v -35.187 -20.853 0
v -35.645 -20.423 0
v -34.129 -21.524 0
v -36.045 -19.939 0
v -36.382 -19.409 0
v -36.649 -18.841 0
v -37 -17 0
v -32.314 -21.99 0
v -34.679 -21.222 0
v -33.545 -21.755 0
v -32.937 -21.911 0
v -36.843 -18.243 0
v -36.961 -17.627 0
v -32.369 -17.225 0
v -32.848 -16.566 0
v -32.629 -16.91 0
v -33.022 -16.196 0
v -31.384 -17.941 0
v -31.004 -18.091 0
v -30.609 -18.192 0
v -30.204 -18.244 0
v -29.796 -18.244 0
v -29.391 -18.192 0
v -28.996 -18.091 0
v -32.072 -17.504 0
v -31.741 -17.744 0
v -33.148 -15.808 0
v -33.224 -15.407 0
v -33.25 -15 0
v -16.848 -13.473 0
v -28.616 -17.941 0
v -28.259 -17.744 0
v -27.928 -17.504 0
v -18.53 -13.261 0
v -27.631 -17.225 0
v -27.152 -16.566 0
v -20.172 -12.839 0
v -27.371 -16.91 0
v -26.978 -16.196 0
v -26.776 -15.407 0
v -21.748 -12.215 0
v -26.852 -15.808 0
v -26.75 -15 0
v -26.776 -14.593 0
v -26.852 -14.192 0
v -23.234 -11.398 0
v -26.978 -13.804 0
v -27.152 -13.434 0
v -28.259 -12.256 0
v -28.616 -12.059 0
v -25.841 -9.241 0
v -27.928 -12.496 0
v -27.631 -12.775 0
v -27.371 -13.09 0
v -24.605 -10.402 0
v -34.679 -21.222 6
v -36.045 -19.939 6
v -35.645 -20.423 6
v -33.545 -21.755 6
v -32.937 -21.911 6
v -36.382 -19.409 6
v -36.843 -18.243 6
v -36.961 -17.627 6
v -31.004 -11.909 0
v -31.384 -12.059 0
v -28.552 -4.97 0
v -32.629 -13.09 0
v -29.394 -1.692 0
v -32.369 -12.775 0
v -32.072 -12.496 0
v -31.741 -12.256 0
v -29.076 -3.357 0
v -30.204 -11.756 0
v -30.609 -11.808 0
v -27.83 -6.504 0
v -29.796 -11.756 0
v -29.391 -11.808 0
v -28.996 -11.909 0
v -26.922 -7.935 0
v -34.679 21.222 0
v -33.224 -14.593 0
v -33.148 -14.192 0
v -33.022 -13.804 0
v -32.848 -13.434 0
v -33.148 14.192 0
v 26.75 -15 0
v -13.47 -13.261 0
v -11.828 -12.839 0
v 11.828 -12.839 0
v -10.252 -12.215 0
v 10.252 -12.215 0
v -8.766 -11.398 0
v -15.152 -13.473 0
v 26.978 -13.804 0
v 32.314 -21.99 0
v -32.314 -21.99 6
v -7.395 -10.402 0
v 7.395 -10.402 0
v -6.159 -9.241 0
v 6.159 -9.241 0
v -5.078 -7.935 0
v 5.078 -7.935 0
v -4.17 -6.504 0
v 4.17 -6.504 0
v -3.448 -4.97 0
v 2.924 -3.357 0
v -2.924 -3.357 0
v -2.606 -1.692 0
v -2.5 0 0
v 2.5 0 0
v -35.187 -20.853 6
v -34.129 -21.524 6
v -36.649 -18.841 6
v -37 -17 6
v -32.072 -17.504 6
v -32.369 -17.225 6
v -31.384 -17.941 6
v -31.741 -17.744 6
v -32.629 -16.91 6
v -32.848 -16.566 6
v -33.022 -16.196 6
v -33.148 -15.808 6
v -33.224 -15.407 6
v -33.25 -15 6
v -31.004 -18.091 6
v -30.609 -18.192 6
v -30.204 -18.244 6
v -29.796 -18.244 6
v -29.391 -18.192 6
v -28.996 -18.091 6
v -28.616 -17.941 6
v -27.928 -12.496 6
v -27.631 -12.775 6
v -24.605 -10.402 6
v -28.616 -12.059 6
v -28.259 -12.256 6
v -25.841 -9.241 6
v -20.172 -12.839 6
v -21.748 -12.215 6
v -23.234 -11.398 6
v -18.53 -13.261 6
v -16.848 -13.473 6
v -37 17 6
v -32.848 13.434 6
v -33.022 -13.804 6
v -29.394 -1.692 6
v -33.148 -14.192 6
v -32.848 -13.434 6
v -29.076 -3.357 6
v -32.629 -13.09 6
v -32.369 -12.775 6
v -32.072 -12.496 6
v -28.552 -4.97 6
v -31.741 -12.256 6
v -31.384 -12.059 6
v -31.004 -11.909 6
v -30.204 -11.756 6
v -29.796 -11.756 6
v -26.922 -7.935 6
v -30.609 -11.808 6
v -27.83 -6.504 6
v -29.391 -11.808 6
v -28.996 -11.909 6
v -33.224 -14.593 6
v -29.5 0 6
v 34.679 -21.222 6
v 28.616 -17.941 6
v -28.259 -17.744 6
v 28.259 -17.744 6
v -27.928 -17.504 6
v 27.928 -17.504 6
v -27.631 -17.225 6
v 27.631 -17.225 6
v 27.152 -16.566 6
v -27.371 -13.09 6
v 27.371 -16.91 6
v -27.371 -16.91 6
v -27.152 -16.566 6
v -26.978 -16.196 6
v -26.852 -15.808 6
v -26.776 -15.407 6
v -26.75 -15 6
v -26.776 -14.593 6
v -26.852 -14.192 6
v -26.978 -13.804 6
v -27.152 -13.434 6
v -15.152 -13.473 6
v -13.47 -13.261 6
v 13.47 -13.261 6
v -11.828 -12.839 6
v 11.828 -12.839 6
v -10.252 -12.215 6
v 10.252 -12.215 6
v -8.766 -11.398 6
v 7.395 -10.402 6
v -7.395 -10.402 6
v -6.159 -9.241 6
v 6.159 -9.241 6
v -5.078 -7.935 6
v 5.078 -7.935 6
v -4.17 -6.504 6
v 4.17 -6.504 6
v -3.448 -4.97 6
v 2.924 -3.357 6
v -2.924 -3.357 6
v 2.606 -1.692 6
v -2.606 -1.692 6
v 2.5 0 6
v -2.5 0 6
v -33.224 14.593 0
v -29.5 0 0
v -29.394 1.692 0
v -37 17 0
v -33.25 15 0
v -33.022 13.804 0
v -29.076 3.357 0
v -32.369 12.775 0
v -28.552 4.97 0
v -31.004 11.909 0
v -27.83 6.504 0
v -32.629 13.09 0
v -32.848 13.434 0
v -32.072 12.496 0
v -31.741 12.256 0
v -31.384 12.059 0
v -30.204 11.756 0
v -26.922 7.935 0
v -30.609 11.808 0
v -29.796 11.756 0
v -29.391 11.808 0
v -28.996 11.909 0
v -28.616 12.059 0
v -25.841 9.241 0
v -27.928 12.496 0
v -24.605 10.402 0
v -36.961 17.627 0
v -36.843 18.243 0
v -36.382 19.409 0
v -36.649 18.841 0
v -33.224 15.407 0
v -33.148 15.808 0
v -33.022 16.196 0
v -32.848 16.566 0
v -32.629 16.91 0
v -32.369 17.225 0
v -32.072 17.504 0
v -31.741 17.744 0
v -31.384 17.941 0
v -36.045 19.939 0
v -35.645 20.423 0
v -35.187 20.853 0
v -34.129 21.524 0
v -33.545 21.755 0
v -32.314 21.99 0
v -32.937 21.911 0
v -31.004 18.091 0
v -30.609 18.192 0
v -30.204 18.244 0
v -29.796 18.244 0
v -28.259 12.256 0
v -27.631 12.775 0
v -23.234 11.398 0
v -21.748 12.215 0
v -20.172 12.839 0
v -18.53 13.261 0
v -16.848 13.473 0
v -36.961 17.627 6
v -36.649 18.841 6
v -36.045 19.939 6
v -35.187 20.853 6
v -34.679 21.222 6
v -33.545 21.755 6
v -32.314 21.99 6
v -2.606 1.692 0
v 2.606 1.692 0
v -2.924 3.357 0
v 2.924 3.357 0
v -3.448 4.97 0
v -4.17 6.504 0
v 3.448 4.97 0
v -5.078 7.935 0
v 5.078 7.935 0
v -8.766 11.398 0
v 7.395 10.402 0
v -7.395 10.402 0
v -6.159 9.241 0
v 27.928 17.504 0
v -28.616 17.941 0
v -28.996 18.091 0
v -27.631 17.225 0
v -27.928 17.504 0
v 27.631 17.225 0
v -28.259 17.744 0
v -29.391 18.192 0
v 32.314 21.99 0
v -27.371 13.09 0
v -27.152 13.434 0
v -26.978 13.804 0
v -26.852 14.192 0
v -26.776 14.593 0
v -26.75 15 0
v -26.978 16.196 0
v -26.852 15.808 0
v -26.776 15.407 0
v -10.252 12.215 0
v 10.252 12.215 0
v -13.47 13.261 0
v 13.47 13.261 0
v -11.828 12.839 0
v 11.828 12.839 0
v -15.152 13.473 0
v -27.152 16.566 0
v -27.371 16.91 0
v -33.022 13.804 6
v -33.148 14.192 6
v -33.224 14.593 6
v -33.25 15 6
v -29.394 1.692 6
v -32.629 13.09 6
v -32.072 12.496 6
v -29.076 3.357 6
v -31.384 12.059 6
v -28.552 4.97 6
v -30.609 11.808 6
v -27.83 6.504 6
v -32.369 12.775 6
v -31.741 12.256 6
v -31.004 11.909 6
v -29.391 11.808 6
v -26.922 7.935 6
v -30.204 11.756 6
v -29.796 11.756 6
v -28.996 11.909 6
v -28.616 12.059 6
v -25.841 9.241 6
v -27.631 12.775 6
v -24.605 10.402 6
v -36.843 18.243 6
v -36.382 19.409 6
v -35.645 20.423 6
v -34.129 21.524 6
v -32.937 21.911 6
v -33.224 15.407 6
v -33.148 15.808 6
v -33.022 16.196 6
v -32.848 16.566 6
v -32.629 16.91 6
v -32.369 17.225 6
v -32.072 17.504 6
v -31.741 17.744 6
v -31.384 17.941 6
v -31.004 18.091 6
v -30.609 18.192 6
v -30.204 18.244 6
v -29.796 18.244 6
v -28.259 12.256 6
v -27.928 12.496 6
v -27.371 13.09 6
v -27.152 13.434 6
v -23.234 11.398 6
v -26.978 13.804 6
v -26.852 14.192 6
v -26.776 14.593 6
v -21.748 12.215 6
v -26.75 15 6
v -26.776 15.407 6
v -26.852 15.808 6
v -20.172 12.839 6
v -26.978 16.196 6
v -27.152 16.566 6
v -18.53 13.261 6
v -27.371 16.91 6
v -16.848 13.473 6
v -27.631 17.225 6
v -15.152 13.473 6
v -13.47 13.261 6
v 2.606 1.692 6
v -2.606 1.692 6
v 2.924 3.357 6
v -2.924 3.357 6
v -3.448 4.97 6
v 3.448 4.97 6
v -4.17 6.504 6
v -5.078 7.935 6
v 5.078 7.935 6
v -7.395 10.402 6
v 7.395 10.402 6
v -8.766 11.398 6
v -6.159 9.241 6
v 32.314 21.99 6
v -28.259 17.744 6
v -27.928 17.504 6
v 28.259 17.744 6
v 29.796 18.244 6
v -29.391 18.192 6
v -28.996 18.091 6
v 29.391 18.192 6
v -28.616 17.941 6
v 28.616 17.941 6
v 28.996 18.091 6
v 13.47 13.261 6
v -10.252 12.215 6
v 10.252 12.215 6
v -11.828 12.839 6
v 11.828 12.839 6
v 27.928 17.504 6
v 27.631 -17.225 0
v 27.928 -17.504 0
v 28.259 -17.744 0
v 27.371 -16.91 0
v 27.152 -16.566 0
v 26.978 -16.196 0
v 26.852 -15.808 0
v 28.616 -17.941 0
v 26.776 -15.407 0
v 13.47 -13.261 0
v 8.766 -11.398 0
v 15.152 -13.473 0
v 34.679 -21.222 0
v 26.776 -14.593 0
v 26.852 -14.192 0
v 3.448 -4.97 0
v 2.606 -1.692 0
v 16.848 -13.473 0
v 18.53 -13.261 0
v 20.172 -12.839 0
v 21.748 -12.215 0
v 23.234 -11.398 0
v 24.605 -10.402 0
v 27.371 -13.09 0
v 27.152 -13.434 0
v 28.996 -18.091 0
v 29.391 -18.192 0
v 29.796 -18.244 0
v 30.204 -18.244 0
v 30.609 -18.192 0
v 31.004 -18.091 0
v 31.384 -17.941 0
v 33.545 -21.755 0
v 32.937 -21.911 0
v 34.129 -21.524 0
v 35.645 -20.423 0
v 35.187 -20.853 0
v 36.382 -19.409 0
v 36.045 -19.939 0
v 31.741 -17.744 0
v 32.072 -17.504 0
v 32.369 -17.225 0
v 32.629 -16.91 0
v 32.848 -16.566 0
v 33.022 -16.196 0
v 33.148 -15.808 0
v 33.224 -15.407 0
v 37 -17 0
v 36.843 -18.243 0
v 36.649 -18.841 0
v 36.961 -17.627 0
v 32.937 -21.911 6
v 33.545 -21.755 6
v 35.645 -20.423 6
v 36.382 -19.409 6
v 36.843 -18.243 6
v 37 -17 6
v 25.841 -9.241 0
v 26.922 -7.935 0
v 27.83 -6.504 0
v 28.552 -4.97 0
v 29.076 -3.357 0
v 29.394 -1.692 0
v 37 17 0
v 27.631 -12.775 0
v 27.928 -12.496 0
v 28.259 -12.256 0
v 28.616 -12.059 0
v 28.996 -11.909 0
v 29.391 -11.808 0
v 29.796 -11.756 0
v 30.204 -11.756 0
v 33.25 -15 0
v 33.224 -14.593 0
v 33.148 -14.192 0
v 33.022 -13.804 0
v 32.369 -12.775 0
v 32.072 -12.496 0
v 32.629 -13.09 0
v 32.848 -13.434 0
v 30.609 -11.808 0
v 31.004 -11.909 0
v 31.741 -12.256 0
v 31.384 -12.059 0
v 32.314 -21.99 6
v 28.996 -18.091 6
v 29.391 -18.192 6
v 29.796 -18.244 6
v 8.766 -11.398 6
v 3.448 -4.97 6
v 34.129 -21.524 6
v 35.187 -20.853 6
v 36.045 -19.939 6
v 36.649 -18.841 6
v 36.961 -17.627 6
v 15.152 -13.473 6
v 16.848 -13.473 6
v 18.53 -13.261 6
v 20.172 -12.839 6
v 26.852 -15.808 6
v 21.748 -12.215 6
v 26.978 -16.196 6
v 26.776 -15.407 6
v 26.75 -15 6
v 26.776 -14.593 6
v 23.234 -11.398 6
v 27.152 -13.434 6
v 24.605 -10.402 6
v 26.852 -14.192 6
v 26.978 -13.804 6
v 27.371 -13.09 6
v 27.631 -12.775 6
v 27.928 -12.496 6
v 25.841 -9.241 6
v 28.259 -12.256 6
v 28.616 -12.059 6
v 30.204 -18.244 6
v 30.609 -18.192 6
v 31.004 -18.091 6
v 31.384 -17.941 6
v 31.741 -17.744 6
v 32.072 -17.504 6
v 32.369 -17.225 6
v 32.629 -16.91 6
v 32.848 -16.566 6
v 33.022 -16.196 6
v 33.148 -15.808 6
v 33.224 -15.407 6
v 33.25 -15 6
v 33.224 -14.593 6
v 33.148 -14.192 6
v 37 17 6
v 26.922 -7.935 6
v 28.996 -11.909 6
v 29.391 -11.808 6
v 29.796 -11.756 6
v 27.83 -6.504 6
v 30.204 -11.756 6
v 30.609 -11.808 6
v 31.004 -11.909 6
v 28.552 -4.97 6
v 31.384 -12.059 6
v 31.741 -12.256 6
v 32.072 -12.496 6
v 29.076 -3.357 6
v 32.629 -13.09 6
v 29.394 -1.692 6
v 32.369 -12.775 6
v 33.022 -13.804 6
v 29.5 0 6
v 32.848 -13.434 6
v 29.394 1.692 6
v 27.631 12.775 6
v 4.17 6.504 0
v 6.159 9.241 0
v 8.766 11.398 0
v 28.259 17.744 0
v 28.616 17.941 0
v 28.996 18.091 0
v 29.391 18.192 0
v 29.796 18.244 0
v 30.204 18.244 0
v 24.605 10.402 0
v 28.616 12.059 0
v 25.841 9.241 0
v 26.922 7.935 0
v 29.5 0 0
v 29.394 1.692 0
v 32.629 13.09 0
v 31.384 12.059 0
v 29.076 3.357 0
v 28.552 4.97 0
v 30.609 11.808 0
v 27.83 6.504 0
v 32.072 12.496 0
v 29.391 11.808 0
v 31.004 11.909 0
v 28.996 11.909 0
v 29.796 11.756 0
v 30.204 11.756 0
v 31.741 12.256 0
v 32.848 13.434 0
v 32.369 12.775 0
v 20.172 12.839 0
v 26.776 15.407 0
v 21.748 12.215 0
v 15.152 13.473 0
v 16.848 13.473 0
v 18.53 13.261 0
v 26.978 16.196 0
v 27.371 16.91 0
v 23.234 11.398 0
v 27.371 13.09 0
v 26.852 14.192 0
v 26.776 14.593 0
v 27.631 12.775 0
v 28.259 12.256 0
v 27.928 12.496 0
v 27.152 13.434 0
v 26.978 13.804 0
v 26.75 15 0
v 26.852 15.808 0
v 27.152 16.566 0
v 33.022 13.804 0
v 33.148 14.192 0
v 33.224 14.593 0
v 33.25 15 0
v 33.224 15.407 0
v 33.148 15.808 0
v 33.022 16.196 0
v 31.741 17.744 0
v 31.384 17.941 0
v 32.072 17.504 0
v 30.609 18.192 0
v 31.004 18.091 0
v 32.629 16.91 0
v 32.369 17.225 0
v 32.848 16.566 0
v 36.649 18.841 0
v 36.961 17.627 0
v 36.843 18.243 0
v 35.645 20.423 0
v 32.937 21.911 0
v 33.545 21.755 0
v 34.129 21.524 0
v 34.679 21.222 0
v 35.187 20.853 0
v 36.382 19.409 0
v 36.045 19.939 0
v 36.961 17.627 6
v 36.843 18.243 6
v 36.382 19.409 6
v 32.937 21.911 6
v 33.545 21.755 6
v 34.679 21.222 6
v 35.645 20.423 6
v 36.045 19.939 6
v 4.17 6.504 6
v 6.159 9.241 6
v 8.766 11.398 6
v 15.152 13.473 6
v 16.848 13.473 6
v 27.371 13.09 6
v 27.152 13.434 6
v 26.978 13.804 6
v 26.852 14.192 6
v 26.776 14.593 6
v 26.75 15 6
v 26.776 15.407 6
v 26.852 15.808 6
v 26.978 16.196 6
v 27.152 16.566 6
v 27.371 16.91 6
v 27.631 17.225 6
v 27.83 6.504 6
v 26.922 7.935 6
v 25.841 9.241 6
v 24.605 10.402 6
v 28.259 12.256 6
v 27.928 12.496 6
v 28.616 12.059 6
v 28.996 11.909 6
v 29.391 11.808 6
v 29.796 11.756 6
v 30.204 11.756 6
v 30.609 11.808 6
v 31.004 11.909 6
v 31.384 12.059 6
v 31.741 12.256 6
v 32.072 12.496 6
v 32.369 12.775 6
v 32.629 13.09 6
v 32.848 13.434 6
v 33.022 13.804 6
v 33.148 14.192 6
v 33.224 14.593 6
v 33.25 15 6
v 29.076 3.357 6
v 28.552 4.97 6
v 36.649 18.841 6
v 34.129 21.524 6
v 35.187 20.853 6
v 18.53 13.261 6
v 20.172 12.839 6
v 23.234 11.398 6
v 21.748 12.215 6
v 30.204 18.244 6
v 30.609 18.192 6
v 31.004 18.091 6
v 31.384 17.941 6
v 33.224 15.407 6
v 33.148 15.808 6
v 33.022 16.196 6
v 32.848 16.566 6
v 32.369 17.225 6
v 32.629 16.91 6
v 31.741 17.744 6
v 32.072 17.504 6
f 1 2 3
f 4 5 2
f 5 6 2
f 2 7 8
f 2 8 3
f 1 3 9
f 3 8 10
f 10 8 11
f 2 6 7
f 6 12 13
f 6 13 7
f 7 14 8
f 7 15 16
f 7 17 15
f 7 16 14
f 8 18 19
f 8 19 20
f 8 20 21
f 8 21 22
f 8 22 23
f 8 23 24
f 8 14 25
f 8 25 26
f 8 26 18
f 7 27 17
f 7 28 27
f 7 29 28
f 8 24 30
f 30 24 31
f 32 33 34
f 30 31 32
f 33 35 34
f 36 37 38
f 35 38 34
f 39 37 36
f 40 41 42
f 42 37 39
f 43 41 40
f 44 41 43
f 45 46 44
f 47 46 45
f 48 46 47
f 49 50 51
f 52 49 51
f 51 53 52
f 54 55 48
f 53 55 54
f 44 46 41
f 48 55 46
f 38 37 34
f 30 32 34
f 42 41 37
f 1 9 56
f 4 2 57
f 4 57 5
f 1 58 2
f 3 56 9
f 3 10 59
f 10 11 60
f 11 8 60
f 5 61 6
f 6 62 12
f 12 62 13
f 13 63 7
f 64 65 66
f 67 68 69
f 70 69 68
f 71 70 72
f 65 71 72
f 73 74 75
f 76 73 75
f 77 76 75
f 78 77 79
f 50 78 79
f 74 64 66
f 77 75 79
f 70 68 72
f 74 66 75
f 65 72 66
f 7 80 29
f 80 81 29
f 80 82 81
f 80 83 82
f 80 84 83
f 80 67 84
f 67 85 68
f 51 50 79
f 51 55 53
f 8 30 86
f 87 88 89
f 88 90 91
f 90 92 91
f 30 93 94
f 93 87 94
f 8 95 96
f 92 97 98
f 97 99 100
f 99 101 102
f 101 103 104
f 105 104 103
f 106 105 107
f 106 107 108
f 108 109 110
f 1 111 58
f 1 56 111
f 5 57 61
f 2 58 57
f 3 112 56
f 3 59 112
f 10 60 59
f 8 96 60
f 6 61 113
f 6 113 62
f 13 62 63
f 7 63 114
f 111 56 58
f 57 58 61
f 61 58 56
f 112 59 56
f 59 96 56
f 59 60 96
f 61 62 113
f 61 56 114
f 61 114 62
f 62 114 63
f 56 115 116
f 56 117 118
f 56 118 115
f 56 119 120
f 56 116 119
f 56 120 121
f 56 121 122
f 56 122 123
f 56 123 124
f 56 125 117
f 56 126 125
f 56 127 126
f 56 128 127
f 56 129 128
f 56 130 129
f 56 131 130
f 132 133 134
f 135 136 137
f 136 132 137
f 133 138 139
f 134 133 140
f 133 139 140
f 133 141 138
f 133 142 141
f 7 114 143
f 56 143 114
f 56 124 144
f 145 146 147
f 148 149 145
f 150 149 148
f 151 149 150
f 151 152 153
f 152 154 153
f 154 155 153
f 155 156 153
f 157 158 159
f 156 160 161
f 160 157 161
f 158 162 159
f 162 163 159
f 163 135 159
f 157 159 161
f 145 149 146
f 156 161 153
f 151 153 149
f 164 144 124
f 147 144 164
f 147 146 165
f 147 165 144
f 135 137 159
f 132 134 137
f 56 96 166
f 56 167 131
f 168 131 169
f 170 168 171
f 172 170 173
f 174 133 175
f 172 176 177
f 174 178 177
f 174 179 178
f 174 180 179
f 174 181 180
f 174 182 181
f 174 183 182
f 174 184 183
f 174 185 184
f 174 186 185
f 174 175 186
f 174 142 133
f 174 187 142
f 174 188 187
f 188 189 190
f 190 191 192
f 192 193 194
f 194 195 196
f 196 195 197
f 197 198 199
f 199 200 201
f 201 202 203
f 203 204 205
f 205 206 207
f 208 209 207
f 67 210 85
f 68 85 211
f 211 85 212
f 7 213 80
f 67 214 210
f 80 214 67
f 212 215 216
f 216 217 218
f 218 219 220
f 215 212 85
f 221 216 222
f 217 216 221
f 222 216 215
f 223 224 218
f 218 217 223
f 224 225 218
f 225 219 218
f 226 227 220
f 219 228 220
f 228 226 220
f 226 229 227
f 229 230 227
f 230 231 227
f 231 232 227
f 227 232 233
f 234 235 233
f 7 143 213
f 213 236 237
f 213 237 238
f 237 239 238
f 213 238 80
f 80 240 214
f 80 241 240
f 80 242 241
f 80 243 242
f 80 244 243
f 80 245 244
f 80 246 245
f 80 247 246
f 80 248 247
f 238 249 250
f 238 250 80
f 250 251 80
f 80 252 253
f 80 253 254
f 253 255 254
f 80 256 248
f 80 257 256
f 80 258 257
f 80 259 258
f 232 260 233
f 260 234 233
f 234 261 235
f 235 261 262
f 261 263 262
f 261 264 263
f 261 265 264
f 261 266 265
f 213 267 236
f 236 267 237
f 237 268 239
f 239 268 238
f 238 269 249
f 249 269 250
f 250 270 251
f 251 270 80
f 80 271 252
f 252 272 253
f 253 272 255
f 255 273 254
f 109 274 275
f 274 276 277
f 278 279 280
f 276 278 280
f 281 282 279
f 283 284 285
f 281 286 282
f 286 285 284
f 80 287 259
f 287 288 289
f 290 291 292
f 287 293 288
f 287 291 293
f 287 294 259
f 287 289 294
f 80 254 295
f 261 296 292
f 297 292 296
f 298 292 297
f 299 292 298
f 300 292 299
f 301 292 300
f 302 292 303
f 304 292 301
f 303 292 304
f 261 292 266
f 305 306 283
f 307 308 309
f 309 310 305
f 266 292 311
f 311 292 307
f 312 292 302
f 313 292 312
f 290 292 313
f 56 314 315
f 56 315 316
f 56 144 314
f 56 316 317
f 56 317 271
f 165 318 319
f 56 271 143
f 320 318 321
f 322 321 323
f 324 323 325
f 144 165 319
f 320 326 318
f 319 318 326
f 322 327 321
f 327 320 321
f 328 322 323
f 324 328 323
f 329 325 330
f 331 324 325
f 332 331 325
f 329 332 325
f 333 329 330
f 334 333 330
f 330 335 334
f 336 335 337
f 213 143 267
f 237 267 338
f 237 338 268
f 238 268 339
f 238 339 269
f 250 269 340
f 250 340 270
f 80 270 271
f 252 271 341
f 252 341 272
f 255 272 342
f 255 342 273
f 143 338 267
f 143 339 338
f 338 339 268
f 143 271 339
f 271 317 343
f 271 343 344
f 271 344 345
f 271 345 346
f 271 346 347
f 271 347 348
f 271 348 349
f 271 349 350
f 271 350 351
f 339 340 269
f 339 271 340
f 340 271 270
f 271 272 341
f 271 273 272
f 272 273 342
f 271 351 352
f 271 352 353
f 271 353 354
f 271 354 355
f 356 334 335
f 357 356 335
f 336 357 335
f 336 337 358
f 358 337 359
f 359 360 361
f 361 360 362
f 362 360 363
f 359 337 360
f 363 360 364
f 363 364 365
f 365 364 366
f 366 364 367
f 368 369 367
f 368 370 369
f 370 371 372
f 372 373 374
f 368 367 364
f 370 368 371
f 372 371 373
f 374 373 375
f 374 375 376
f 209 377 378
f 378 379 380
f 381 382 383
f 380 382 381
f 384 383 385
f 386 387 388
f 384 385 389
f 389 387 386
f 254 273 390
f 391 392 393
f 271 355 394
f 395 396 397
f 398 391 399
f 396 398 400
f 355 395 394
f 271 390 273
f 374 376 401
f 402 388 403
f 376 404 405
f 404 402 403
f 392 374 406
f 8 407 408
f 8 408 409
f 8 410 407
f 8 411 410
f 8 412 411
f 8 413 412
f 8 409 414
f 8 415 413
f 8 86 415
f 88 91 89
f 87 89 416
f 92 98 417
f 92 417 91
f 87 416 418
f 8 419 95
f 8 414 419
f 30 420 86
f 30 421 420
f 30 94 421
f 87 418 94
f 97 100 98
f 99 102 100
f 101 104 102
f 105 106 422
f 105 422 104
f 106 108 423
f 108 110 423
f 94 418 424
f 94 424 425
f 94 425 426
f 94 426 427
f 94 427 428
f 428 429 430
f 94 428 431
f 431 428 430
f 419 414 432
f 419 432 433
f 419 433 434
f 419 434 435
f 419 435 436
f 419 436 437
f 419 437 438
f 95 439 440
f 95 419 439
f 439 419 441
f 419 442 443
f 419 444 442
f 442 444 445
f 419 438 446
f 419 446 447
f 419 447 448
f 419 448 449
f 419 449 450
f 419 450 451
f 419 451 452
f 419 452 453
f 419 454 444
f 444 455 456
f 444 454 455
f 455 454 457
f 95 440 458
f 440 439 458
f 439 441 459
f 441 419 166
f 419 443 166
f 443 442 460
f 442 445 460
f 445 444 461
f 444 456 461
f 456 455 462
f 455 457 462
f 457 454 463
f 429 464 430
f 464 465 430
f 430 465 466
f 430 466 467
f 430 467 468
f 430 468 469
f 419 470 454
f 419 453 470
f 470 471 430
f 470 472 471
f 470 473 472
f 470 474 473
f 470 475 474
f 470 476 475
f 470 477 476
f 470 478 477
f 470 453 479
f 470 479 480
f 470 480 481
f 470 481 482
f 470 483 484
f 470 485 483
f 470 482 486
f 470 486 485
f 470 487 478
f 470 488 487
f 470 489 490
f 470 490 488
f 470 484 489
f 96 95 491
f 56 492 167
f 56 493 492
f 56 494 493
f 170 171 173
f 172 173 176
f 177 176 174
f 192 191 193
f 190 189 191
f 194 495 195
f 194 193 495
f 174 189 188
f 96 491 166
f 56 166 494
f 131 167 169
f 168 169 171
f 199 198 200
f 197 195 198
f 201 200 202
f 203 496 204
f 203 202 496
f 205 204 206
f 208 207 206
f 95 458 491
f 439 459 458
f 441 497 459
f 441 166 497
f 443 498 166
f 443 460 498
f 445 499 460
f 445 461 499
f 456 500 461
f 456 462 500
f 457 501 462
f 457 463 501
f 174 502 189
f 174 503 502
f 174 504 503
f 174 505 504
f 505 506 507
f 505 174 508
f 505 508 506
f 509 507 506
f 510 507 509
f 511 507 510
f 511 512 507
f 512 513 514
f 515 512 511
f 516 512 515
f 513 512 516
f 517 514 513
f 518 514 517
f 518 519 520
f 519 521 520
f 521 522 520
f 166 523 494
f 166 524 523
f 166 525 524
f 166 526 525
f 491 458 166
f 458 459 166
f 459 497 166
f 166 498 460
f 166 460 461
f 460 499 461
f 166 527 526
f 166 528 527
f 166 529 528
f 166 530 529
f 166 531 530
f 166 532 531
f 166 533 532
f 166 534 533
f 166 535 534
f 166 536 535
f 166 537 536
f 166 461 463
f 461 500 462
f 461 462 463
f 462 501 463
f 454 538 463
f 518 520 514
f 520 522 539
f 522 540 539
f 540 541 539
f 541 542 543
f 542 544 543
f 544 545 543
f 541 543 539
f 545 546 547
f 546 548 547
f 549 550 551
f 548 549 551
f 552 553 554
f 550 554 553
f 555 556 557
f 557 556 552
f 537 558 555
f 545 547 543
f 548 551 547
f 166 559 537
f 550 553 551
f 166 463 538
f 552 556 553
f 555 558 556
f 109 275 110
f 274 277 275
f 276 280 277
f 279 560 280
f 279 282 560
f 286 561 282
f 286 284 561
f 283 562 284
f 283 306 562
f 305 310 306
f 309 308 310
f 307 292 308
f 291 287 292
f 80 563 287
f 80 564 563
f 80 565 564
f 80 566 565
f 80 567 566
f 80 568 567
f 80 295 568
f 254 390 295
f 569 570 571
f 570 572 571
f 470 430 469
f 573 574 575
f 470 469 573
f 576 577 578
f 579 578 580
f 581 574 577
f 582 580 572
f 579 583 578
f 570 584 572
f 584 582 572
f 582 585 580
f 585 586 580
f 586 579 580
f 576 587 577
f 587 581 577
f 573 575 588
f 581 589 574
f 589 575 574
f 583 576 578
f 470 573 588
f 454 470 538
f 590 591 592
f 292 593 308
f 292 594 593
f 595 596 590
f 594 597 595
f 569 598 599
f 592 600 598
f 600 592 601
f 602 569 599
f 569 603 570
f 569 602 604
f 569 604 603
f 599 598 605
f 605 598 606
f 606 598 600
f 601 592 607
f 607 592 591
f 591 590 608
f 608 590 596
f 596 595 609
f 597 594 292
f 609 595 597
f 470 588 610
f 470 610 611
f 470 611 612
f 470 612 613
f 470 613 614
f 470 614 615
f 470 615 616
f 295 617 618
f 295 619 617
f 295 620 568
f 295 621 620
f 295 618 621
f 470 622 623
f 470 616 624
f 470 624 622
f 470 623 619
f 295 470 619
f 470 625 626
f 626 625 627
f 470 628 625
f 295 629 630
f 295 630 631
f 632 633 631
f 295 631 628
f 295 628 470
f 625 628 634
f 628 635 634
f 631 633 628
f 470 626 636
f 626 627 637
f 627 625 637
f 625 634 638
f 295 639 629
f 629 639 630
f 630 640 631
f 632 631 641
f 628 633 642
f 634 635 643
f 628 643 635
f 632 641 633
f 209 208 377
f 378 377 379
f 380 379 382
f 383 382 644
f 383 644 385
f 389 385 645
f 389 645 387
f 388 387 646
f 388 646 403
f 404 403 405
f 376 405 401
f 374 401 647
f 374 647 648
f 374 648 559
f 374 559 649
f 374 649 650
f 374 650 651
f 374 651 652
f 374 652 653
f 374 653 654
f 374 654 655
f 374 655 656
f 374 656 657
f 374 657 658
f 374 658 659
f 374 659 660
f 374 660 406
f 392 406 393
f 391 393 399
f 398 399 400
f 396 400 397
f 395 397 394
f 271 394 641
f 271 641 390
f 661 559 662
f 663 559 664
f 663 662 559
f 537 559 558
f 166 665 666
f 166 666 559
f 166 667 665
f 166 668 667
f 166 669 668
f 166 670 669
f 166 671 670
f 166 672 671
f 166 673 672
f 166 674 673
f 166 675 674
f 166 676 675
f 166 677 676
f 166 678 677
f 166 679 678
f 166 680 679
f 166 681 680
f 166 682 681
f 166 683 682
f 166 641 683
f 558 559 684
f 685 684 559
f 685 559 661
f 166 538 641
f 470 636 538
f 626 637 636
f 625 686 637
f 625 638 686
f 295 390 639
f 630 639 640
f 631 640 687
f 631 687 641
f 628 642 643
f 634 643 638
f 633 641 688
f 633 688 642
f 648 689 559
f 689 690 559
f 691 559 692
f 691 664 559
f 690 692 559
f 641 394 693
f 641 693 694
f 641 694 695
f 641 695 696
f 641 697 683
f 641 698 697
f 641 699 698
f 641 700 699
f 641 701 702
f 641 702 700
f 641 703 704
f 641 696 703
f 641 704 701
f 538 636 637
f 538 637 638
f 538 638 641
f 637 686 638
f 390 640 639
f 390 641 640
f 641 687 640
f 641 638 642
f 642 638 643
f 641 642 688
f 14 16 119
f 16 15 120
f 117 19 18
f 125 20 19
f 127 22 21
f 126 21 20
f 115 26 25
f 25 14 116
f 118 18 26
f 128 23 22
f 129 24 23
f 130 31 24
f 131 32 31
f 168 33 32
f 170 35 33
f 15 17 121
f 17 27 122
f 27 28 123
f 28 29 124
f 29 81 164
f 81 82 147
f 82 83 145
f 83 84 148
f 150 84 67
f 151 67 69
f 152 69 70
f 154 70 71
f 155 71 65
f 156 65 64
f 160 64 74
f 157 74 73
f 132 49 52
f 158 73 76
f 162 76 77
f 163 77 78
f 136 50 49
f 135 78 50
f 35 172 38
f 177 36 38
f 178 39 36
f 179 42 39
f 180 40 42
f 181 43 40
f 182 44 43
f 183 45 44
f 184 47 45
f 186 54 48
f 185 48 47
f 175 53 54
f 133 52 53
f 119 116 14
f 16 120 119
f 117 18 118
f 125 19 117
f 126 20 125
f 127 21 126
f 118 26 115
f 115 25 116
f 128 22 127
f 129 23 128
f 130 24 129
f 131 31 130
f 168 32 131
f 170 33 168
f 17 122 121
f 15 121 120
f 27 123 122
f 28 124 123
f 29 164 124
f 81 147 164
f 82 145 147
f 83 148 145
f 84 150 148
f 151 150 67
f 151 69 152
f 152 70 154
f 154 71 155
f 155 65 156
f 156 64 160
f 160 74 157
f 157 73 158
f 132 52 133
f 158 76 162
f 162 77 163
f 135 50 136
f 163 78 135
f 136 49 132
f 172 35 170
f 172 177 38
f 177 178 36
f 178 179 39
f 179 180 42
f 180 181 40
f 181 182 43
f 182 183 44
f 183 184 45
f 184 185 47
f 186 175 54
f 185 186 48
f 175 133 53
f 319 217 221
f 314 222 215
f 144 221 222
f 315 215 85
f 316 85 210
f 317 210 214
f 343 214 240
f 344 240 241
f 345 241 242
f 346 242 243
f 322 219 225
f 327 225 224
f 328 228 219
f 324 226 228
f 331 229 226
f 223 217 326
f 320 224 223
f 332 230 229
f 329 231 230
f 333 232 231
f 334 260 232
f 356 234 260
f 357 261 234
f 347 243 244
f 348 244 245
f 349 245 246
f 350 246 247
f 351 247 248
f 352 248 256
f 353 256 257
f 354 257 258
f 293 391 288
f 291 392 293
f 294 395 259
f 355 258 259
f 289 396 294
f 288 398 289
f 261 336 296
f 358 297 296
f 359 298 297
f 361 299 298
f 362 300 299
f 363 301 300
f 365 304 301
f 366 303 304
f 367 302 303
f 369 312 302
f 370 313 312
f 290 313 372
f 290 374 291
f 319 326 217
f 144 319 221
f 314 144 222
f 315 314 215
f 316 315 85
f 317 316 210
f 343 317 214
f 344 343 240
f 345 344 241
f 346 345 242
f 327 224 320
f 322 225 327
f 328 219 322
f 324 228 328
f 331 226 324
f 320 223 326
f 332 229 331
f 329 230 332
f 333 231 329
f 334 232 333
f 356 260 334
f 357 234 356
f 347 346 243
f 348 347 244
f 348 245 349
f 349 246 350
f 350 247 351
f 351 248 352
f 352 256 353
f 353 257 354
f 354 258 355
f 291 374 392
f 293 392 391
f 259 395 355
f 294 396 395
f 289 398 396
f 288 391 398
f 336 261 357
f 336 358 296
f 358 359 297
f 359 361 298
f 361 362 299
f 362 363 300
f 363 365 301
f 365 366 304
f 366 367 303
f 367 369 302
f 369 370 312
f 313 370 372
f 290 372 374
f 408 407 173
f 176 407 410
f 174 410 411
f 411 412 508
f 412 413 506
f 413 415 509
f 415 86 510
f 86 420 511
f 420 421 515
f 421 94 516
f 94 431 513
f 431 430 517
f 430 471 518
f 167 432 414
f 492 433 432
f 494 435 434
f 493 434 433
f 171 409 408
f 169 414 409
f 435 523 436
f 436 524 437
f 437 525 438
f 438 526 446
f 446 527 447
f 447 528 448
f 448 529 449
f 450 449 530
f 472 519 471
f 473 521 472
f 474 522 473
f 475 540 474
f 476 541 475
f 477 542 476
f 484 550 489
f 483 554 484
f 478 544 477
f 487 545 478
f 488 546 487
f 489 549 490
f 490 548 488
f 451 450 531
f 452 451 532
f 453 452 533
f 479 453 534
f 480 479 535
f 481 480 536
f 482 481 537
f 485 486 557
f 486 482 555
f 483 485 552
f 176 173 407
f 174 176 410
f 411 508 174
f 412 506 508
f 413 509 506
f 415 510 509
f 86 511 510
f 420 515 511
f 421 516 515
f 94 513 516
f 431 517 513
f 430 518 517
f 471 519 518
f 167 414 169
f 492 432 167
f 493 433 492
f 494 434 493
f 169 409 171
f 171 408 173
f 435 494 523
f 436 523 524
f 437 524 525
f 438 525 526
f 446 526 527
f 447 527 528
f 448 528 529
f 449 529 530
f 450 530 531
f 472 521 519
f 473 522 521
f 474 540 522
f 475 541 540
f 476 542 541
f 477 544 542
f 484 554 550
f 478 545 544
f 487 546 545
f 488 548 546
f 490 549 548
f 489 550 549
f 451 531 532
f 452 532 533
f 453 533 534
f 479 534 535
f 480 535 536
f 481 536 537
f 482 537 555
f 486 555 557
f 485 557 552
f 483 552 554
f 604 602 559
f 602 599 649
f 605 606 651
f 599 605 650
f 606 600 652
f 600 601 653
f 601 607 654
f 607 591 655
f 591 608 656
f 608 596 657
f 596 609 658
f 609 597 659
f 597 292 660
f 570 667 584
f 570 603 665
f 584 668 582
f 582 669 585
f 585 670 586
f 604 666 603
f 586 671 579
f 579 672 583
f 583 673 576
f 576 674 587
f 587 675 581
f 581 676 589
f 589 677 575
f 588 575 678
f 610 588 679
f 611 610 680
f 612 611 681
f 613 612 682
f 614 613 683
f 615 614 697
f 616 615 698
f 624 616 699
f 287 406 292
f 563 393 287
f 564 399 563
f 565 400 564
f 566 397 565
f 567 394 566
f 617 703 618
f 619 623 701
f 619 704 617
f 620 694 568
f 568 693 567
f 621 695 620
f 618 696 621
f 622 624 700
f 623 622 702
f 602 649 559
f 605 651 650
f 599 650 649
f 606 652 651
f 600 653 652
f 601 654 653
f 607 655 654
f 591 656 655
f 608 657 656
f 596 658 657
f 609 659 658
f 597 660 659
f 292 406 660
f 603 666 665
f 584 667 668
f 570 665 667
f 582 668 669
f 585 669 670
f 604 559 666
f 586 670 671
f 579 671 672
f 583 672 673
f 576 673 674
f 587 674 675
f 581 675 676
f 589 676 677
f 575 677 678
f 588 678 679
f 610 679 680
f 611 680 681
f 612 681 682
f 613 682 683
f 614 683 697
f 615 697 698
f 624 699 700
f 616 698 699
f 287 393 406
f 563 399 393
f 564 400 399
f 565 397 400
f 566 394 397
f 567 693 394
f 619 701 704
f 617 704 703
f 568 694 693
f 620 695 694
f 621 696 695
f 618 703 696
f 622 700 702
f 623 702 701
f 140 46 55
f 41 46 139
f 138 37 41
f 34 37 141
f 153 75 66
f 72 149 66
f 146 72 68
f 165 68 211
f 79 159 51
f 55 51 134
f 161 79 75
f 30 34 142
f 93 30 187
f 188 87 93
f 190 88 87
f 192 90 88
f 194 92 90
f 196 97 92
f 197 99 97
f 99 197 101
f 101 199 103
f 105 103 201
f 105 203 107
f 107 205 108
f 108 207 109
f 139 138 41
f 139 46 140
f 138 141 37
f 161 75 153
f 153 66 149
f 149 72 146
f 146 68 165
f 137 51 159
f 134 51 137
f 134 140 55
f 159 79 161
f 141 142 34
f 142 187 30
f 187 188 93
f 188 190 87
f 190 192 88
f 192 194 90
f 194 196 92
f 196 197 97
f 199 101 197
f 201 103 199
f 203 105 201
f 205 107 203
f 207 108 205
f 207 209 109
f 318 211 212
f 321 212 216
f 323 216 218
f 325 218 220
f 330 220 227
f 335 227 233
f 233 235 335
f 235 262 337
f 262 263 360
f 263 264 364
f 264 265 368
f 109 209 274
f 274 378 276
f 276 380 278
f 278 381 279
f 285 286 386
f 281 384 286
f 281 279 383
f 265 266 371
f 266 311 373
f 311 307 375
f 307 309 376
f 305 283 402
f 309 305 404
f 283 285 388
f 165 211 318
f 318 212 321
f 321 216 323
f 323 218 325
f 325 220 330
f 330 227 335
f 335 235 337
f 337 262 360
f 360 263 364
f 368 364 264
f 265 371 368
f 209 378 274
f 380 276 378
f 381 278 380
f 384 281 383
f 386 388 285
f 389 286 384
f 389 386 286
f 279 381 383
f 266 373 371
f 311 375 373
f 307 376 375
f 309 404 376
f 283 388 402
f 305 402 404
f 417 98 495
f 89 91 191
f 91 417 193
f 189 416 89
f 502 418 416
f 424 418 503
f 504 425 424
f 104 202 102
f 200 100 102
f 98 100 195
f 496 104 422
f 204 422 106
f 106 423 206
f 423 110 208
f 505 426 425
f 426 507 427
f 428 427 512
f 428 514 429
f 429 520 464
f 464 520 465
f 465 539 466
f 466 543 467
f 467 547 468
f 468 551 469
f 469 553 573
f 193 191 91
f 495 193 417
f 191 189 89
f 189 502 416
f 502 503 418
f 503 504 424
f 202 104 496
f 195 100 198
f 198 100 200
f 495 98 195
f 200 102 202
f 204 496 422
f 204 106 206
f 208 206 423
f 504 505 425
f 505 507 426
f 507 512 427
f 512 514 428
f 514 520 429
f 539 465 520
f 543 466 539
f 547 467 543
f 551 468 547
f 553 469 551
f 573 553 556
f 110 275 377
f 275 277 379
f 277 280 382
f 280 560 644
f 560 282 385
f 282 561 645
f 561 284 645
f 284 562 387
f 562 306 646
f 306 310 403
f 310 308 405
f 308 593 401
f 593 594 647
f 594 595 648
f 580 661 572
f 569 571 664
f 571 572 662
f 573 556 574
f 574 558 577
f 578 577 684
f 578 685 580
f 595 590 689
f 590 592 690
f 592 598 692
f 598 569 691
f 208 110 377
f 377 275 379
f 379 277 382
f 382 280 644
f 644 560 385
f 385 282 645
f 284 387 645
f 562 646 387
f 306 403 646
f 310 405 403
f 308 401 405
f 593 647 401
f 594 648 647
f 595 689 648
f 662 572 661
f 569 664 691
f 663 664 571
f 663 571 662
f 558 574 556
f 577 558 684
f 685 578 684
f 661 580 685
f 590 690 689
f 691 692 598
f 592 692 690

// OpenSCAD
$fn = 50;

difference() {
	union() {
		hull() {
			translate(v = [-32.0, 17.0, 0]) {
				cylinder(h = 6, r = 5);
			}
			translate(v = [32.0, 17.0, 0]) {
				cylinder(h = 6, r = 5);
			}
			translate(v = [-32.0, -17.0, 0]) {
				cylinder(h = 6, r = 5);
			}
			translate(v = [32.0, -17.0, 0]) {
				cylinder(h = 6, r = 5);
			}
		}
	}
	union() {
		translate(v = [-30.0, -15.0, -100.0]) {
			cylinder(h = 200, r = 3.25);
		}
		translate(v = [-30.0, 15.0, -100.0]) {
			cylinder(h = 200, r = 3.25);
		}
		translate(v = [30.0, -15.0, -100.0]) {
			cylinder(h = 200, r = 3.25);
		}
		translate(v = [30.0, 15.0, -100.0]) {
			cylinder(h = 200, r = 3.25);
		}
		translate(v = [-30.0, -15.0, -100.0]) {
			cylinder(h = 200, r = 1.8);
		}
		translate(v = [-30.0, 15.0, -100.0]) {
			cylinder(h = 200, r = 1.8);
		}
		translate(v = [30.0, -15.0, -100.0]) {
			cylinder(h = 200, r = 1.8);
		}
		translate(v = [30.0, 15.0, -100.0]) {
			cylinder(h = 200, r = 1.8);
		}
		translate(v = [-16.0, 0, 0.0]) {
			cylinder(h = 6, r = 13.5);
		}
		translate(v = [16.0, 0, 0.0]) {
			cylinder(h = 6, r = 13.5);
		}
	}
}
